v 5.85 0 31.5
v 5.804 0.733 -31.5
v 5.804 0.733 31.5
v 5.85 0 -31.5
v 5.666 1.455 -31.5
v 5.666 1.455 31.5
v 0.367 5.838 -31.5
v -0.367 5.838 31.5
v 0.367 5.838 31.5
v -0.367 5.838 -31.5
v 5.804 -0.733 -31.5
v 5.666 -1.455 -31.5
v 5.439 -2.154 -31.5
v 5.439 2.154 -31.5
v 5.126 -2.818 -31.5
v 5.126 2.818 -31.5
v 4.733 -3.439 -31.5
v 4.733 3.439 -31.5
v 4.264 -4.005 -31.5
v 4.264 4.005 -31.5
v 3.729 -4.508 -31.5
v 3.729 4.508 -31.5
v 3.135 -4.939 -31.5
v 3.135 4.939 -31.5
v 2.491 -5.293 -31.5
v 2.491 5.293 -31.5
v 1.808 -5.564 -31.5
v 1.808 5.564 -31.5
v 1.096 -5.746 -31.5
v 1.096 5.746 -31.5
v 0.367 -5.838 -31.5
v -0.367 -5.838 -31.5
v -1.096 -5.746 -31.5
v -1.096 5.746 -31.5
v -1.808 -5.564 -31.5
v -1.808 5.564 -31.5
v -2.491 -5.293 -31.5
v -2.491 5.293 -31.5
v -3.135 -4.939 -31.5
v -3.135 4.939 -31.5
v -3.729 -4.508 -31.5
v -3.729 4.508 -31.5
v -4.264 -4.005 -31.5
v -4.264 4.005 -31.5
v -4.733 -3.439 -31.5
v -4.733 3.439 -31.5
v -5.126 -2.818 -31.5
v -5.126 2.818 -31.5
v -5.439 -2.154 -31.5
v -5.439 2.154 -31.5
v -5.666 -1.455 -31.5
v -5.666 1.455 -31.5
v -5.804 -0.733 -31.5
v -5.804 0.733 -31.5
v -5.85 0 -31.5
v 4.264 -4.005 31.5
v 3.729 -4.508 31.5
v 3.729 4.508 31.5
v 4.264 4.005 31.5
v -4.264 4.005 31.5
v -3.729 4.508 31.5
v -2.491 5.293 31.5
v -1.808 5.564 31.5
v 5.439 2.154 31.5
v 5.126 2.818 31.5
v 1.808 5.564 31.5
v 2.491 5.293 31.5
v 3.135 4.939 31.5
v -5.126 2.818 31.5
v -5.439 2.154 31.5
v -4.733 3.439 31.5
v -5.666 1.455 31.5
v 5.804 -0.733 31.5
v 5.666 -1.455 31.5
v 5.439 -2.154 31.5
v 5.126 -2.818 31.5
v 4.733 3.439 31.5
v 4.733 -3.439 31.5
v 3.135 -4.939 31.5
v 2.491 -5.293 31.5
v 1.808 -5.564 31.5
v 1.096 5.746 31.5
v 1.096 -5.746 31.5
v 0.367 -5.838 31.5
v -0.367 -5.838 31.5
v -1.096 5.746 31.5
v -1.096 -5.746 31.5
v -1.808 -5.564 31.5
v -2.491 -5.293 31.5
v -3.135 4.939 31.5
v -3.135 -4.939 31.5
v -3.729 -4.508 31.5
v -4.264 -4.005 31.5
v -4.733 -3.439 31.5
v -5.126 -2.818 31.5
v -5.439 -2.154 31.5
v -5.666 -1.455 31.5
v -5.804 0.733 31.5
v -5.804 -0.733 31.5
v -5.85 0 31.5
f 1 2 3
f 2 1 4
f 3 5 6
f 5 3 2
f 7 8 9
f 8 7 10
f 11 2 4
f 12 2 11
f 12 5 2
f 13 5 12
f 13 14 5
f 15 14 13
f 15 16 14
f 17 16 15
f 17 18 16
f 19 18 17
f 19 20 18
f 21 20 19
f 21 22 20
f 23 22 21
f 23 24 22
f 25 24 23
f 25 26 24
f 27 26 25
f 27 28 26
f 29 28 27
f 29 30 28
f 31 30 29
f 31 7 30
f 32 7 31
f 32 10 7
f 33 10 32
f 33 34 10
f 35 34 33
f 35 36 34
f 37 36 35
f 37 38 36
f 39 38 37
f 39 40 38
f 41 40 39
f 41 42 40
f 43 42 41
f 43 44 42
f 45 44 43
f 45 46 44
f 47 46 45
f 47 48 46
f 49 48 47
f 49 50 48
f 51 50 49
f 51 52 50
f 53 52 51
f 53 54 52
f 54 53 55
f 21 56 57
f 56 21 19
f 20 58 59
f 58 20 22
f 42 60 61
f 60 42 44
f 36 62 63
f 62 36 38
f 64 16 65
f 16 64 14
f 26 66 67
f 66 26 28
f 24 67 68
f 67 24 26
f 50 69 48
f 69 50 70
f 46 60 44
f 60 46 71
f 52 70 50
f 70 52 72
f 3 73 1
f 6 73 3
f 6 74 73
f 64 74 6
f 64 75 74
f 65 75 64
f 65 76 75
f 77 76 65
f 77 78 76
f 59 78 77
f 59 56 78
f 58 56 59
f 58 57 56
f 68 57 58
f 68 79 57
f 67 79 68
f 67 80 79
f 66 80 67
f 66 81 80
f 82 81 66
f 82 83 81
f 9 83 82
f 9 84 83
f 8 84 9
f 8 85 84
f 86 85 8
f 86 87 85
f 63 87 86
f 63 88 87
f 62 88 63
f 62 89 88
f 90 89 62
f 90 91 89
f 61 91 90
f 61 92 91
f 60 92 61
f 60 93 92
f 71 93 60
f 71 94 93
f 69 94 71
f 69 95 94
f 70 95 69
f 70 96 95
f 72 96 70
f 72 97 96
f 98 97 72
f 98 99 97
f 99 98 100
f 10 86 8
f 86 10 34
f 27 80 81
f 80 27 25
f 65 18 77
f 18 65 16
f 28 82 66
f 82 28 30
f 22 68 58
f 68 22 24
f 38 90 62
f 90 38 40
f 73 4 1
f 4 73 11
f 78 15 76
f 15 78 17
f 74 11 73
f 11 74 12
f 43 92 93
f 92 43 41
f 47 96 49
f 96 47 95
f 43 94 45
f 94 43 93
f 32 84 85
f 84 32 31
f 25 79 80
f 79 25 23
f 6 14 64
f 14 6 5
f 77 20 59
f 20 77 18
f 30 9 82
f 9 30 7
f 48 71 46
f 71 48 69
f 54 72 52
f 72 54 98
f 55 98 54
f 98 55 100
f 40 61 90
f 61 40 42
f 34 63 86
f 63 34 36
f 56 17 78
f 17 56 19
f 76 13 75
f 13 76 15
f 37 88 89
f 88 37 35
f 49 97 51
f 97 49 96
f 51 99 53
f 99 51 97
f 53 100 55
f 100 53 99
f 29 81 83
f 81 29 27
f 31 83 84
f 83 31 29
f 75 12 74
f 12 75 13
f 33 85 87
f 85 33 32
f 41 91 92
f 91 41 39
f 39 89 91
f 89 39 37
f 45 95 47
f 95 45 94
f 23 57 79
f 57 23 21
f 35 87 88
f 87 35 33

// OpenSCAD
$fn = 50;


difference() {
	union() {
		translate(v = [0, 0, -31.5000000000]) {
			cylinder(h = 63, r = 5.8500000000);
		}
	}
	union() {
		translate(v = [0, 0, -100.0000000000]) {
			cylinder(h = 200, r = 0);
		}
	}
}
